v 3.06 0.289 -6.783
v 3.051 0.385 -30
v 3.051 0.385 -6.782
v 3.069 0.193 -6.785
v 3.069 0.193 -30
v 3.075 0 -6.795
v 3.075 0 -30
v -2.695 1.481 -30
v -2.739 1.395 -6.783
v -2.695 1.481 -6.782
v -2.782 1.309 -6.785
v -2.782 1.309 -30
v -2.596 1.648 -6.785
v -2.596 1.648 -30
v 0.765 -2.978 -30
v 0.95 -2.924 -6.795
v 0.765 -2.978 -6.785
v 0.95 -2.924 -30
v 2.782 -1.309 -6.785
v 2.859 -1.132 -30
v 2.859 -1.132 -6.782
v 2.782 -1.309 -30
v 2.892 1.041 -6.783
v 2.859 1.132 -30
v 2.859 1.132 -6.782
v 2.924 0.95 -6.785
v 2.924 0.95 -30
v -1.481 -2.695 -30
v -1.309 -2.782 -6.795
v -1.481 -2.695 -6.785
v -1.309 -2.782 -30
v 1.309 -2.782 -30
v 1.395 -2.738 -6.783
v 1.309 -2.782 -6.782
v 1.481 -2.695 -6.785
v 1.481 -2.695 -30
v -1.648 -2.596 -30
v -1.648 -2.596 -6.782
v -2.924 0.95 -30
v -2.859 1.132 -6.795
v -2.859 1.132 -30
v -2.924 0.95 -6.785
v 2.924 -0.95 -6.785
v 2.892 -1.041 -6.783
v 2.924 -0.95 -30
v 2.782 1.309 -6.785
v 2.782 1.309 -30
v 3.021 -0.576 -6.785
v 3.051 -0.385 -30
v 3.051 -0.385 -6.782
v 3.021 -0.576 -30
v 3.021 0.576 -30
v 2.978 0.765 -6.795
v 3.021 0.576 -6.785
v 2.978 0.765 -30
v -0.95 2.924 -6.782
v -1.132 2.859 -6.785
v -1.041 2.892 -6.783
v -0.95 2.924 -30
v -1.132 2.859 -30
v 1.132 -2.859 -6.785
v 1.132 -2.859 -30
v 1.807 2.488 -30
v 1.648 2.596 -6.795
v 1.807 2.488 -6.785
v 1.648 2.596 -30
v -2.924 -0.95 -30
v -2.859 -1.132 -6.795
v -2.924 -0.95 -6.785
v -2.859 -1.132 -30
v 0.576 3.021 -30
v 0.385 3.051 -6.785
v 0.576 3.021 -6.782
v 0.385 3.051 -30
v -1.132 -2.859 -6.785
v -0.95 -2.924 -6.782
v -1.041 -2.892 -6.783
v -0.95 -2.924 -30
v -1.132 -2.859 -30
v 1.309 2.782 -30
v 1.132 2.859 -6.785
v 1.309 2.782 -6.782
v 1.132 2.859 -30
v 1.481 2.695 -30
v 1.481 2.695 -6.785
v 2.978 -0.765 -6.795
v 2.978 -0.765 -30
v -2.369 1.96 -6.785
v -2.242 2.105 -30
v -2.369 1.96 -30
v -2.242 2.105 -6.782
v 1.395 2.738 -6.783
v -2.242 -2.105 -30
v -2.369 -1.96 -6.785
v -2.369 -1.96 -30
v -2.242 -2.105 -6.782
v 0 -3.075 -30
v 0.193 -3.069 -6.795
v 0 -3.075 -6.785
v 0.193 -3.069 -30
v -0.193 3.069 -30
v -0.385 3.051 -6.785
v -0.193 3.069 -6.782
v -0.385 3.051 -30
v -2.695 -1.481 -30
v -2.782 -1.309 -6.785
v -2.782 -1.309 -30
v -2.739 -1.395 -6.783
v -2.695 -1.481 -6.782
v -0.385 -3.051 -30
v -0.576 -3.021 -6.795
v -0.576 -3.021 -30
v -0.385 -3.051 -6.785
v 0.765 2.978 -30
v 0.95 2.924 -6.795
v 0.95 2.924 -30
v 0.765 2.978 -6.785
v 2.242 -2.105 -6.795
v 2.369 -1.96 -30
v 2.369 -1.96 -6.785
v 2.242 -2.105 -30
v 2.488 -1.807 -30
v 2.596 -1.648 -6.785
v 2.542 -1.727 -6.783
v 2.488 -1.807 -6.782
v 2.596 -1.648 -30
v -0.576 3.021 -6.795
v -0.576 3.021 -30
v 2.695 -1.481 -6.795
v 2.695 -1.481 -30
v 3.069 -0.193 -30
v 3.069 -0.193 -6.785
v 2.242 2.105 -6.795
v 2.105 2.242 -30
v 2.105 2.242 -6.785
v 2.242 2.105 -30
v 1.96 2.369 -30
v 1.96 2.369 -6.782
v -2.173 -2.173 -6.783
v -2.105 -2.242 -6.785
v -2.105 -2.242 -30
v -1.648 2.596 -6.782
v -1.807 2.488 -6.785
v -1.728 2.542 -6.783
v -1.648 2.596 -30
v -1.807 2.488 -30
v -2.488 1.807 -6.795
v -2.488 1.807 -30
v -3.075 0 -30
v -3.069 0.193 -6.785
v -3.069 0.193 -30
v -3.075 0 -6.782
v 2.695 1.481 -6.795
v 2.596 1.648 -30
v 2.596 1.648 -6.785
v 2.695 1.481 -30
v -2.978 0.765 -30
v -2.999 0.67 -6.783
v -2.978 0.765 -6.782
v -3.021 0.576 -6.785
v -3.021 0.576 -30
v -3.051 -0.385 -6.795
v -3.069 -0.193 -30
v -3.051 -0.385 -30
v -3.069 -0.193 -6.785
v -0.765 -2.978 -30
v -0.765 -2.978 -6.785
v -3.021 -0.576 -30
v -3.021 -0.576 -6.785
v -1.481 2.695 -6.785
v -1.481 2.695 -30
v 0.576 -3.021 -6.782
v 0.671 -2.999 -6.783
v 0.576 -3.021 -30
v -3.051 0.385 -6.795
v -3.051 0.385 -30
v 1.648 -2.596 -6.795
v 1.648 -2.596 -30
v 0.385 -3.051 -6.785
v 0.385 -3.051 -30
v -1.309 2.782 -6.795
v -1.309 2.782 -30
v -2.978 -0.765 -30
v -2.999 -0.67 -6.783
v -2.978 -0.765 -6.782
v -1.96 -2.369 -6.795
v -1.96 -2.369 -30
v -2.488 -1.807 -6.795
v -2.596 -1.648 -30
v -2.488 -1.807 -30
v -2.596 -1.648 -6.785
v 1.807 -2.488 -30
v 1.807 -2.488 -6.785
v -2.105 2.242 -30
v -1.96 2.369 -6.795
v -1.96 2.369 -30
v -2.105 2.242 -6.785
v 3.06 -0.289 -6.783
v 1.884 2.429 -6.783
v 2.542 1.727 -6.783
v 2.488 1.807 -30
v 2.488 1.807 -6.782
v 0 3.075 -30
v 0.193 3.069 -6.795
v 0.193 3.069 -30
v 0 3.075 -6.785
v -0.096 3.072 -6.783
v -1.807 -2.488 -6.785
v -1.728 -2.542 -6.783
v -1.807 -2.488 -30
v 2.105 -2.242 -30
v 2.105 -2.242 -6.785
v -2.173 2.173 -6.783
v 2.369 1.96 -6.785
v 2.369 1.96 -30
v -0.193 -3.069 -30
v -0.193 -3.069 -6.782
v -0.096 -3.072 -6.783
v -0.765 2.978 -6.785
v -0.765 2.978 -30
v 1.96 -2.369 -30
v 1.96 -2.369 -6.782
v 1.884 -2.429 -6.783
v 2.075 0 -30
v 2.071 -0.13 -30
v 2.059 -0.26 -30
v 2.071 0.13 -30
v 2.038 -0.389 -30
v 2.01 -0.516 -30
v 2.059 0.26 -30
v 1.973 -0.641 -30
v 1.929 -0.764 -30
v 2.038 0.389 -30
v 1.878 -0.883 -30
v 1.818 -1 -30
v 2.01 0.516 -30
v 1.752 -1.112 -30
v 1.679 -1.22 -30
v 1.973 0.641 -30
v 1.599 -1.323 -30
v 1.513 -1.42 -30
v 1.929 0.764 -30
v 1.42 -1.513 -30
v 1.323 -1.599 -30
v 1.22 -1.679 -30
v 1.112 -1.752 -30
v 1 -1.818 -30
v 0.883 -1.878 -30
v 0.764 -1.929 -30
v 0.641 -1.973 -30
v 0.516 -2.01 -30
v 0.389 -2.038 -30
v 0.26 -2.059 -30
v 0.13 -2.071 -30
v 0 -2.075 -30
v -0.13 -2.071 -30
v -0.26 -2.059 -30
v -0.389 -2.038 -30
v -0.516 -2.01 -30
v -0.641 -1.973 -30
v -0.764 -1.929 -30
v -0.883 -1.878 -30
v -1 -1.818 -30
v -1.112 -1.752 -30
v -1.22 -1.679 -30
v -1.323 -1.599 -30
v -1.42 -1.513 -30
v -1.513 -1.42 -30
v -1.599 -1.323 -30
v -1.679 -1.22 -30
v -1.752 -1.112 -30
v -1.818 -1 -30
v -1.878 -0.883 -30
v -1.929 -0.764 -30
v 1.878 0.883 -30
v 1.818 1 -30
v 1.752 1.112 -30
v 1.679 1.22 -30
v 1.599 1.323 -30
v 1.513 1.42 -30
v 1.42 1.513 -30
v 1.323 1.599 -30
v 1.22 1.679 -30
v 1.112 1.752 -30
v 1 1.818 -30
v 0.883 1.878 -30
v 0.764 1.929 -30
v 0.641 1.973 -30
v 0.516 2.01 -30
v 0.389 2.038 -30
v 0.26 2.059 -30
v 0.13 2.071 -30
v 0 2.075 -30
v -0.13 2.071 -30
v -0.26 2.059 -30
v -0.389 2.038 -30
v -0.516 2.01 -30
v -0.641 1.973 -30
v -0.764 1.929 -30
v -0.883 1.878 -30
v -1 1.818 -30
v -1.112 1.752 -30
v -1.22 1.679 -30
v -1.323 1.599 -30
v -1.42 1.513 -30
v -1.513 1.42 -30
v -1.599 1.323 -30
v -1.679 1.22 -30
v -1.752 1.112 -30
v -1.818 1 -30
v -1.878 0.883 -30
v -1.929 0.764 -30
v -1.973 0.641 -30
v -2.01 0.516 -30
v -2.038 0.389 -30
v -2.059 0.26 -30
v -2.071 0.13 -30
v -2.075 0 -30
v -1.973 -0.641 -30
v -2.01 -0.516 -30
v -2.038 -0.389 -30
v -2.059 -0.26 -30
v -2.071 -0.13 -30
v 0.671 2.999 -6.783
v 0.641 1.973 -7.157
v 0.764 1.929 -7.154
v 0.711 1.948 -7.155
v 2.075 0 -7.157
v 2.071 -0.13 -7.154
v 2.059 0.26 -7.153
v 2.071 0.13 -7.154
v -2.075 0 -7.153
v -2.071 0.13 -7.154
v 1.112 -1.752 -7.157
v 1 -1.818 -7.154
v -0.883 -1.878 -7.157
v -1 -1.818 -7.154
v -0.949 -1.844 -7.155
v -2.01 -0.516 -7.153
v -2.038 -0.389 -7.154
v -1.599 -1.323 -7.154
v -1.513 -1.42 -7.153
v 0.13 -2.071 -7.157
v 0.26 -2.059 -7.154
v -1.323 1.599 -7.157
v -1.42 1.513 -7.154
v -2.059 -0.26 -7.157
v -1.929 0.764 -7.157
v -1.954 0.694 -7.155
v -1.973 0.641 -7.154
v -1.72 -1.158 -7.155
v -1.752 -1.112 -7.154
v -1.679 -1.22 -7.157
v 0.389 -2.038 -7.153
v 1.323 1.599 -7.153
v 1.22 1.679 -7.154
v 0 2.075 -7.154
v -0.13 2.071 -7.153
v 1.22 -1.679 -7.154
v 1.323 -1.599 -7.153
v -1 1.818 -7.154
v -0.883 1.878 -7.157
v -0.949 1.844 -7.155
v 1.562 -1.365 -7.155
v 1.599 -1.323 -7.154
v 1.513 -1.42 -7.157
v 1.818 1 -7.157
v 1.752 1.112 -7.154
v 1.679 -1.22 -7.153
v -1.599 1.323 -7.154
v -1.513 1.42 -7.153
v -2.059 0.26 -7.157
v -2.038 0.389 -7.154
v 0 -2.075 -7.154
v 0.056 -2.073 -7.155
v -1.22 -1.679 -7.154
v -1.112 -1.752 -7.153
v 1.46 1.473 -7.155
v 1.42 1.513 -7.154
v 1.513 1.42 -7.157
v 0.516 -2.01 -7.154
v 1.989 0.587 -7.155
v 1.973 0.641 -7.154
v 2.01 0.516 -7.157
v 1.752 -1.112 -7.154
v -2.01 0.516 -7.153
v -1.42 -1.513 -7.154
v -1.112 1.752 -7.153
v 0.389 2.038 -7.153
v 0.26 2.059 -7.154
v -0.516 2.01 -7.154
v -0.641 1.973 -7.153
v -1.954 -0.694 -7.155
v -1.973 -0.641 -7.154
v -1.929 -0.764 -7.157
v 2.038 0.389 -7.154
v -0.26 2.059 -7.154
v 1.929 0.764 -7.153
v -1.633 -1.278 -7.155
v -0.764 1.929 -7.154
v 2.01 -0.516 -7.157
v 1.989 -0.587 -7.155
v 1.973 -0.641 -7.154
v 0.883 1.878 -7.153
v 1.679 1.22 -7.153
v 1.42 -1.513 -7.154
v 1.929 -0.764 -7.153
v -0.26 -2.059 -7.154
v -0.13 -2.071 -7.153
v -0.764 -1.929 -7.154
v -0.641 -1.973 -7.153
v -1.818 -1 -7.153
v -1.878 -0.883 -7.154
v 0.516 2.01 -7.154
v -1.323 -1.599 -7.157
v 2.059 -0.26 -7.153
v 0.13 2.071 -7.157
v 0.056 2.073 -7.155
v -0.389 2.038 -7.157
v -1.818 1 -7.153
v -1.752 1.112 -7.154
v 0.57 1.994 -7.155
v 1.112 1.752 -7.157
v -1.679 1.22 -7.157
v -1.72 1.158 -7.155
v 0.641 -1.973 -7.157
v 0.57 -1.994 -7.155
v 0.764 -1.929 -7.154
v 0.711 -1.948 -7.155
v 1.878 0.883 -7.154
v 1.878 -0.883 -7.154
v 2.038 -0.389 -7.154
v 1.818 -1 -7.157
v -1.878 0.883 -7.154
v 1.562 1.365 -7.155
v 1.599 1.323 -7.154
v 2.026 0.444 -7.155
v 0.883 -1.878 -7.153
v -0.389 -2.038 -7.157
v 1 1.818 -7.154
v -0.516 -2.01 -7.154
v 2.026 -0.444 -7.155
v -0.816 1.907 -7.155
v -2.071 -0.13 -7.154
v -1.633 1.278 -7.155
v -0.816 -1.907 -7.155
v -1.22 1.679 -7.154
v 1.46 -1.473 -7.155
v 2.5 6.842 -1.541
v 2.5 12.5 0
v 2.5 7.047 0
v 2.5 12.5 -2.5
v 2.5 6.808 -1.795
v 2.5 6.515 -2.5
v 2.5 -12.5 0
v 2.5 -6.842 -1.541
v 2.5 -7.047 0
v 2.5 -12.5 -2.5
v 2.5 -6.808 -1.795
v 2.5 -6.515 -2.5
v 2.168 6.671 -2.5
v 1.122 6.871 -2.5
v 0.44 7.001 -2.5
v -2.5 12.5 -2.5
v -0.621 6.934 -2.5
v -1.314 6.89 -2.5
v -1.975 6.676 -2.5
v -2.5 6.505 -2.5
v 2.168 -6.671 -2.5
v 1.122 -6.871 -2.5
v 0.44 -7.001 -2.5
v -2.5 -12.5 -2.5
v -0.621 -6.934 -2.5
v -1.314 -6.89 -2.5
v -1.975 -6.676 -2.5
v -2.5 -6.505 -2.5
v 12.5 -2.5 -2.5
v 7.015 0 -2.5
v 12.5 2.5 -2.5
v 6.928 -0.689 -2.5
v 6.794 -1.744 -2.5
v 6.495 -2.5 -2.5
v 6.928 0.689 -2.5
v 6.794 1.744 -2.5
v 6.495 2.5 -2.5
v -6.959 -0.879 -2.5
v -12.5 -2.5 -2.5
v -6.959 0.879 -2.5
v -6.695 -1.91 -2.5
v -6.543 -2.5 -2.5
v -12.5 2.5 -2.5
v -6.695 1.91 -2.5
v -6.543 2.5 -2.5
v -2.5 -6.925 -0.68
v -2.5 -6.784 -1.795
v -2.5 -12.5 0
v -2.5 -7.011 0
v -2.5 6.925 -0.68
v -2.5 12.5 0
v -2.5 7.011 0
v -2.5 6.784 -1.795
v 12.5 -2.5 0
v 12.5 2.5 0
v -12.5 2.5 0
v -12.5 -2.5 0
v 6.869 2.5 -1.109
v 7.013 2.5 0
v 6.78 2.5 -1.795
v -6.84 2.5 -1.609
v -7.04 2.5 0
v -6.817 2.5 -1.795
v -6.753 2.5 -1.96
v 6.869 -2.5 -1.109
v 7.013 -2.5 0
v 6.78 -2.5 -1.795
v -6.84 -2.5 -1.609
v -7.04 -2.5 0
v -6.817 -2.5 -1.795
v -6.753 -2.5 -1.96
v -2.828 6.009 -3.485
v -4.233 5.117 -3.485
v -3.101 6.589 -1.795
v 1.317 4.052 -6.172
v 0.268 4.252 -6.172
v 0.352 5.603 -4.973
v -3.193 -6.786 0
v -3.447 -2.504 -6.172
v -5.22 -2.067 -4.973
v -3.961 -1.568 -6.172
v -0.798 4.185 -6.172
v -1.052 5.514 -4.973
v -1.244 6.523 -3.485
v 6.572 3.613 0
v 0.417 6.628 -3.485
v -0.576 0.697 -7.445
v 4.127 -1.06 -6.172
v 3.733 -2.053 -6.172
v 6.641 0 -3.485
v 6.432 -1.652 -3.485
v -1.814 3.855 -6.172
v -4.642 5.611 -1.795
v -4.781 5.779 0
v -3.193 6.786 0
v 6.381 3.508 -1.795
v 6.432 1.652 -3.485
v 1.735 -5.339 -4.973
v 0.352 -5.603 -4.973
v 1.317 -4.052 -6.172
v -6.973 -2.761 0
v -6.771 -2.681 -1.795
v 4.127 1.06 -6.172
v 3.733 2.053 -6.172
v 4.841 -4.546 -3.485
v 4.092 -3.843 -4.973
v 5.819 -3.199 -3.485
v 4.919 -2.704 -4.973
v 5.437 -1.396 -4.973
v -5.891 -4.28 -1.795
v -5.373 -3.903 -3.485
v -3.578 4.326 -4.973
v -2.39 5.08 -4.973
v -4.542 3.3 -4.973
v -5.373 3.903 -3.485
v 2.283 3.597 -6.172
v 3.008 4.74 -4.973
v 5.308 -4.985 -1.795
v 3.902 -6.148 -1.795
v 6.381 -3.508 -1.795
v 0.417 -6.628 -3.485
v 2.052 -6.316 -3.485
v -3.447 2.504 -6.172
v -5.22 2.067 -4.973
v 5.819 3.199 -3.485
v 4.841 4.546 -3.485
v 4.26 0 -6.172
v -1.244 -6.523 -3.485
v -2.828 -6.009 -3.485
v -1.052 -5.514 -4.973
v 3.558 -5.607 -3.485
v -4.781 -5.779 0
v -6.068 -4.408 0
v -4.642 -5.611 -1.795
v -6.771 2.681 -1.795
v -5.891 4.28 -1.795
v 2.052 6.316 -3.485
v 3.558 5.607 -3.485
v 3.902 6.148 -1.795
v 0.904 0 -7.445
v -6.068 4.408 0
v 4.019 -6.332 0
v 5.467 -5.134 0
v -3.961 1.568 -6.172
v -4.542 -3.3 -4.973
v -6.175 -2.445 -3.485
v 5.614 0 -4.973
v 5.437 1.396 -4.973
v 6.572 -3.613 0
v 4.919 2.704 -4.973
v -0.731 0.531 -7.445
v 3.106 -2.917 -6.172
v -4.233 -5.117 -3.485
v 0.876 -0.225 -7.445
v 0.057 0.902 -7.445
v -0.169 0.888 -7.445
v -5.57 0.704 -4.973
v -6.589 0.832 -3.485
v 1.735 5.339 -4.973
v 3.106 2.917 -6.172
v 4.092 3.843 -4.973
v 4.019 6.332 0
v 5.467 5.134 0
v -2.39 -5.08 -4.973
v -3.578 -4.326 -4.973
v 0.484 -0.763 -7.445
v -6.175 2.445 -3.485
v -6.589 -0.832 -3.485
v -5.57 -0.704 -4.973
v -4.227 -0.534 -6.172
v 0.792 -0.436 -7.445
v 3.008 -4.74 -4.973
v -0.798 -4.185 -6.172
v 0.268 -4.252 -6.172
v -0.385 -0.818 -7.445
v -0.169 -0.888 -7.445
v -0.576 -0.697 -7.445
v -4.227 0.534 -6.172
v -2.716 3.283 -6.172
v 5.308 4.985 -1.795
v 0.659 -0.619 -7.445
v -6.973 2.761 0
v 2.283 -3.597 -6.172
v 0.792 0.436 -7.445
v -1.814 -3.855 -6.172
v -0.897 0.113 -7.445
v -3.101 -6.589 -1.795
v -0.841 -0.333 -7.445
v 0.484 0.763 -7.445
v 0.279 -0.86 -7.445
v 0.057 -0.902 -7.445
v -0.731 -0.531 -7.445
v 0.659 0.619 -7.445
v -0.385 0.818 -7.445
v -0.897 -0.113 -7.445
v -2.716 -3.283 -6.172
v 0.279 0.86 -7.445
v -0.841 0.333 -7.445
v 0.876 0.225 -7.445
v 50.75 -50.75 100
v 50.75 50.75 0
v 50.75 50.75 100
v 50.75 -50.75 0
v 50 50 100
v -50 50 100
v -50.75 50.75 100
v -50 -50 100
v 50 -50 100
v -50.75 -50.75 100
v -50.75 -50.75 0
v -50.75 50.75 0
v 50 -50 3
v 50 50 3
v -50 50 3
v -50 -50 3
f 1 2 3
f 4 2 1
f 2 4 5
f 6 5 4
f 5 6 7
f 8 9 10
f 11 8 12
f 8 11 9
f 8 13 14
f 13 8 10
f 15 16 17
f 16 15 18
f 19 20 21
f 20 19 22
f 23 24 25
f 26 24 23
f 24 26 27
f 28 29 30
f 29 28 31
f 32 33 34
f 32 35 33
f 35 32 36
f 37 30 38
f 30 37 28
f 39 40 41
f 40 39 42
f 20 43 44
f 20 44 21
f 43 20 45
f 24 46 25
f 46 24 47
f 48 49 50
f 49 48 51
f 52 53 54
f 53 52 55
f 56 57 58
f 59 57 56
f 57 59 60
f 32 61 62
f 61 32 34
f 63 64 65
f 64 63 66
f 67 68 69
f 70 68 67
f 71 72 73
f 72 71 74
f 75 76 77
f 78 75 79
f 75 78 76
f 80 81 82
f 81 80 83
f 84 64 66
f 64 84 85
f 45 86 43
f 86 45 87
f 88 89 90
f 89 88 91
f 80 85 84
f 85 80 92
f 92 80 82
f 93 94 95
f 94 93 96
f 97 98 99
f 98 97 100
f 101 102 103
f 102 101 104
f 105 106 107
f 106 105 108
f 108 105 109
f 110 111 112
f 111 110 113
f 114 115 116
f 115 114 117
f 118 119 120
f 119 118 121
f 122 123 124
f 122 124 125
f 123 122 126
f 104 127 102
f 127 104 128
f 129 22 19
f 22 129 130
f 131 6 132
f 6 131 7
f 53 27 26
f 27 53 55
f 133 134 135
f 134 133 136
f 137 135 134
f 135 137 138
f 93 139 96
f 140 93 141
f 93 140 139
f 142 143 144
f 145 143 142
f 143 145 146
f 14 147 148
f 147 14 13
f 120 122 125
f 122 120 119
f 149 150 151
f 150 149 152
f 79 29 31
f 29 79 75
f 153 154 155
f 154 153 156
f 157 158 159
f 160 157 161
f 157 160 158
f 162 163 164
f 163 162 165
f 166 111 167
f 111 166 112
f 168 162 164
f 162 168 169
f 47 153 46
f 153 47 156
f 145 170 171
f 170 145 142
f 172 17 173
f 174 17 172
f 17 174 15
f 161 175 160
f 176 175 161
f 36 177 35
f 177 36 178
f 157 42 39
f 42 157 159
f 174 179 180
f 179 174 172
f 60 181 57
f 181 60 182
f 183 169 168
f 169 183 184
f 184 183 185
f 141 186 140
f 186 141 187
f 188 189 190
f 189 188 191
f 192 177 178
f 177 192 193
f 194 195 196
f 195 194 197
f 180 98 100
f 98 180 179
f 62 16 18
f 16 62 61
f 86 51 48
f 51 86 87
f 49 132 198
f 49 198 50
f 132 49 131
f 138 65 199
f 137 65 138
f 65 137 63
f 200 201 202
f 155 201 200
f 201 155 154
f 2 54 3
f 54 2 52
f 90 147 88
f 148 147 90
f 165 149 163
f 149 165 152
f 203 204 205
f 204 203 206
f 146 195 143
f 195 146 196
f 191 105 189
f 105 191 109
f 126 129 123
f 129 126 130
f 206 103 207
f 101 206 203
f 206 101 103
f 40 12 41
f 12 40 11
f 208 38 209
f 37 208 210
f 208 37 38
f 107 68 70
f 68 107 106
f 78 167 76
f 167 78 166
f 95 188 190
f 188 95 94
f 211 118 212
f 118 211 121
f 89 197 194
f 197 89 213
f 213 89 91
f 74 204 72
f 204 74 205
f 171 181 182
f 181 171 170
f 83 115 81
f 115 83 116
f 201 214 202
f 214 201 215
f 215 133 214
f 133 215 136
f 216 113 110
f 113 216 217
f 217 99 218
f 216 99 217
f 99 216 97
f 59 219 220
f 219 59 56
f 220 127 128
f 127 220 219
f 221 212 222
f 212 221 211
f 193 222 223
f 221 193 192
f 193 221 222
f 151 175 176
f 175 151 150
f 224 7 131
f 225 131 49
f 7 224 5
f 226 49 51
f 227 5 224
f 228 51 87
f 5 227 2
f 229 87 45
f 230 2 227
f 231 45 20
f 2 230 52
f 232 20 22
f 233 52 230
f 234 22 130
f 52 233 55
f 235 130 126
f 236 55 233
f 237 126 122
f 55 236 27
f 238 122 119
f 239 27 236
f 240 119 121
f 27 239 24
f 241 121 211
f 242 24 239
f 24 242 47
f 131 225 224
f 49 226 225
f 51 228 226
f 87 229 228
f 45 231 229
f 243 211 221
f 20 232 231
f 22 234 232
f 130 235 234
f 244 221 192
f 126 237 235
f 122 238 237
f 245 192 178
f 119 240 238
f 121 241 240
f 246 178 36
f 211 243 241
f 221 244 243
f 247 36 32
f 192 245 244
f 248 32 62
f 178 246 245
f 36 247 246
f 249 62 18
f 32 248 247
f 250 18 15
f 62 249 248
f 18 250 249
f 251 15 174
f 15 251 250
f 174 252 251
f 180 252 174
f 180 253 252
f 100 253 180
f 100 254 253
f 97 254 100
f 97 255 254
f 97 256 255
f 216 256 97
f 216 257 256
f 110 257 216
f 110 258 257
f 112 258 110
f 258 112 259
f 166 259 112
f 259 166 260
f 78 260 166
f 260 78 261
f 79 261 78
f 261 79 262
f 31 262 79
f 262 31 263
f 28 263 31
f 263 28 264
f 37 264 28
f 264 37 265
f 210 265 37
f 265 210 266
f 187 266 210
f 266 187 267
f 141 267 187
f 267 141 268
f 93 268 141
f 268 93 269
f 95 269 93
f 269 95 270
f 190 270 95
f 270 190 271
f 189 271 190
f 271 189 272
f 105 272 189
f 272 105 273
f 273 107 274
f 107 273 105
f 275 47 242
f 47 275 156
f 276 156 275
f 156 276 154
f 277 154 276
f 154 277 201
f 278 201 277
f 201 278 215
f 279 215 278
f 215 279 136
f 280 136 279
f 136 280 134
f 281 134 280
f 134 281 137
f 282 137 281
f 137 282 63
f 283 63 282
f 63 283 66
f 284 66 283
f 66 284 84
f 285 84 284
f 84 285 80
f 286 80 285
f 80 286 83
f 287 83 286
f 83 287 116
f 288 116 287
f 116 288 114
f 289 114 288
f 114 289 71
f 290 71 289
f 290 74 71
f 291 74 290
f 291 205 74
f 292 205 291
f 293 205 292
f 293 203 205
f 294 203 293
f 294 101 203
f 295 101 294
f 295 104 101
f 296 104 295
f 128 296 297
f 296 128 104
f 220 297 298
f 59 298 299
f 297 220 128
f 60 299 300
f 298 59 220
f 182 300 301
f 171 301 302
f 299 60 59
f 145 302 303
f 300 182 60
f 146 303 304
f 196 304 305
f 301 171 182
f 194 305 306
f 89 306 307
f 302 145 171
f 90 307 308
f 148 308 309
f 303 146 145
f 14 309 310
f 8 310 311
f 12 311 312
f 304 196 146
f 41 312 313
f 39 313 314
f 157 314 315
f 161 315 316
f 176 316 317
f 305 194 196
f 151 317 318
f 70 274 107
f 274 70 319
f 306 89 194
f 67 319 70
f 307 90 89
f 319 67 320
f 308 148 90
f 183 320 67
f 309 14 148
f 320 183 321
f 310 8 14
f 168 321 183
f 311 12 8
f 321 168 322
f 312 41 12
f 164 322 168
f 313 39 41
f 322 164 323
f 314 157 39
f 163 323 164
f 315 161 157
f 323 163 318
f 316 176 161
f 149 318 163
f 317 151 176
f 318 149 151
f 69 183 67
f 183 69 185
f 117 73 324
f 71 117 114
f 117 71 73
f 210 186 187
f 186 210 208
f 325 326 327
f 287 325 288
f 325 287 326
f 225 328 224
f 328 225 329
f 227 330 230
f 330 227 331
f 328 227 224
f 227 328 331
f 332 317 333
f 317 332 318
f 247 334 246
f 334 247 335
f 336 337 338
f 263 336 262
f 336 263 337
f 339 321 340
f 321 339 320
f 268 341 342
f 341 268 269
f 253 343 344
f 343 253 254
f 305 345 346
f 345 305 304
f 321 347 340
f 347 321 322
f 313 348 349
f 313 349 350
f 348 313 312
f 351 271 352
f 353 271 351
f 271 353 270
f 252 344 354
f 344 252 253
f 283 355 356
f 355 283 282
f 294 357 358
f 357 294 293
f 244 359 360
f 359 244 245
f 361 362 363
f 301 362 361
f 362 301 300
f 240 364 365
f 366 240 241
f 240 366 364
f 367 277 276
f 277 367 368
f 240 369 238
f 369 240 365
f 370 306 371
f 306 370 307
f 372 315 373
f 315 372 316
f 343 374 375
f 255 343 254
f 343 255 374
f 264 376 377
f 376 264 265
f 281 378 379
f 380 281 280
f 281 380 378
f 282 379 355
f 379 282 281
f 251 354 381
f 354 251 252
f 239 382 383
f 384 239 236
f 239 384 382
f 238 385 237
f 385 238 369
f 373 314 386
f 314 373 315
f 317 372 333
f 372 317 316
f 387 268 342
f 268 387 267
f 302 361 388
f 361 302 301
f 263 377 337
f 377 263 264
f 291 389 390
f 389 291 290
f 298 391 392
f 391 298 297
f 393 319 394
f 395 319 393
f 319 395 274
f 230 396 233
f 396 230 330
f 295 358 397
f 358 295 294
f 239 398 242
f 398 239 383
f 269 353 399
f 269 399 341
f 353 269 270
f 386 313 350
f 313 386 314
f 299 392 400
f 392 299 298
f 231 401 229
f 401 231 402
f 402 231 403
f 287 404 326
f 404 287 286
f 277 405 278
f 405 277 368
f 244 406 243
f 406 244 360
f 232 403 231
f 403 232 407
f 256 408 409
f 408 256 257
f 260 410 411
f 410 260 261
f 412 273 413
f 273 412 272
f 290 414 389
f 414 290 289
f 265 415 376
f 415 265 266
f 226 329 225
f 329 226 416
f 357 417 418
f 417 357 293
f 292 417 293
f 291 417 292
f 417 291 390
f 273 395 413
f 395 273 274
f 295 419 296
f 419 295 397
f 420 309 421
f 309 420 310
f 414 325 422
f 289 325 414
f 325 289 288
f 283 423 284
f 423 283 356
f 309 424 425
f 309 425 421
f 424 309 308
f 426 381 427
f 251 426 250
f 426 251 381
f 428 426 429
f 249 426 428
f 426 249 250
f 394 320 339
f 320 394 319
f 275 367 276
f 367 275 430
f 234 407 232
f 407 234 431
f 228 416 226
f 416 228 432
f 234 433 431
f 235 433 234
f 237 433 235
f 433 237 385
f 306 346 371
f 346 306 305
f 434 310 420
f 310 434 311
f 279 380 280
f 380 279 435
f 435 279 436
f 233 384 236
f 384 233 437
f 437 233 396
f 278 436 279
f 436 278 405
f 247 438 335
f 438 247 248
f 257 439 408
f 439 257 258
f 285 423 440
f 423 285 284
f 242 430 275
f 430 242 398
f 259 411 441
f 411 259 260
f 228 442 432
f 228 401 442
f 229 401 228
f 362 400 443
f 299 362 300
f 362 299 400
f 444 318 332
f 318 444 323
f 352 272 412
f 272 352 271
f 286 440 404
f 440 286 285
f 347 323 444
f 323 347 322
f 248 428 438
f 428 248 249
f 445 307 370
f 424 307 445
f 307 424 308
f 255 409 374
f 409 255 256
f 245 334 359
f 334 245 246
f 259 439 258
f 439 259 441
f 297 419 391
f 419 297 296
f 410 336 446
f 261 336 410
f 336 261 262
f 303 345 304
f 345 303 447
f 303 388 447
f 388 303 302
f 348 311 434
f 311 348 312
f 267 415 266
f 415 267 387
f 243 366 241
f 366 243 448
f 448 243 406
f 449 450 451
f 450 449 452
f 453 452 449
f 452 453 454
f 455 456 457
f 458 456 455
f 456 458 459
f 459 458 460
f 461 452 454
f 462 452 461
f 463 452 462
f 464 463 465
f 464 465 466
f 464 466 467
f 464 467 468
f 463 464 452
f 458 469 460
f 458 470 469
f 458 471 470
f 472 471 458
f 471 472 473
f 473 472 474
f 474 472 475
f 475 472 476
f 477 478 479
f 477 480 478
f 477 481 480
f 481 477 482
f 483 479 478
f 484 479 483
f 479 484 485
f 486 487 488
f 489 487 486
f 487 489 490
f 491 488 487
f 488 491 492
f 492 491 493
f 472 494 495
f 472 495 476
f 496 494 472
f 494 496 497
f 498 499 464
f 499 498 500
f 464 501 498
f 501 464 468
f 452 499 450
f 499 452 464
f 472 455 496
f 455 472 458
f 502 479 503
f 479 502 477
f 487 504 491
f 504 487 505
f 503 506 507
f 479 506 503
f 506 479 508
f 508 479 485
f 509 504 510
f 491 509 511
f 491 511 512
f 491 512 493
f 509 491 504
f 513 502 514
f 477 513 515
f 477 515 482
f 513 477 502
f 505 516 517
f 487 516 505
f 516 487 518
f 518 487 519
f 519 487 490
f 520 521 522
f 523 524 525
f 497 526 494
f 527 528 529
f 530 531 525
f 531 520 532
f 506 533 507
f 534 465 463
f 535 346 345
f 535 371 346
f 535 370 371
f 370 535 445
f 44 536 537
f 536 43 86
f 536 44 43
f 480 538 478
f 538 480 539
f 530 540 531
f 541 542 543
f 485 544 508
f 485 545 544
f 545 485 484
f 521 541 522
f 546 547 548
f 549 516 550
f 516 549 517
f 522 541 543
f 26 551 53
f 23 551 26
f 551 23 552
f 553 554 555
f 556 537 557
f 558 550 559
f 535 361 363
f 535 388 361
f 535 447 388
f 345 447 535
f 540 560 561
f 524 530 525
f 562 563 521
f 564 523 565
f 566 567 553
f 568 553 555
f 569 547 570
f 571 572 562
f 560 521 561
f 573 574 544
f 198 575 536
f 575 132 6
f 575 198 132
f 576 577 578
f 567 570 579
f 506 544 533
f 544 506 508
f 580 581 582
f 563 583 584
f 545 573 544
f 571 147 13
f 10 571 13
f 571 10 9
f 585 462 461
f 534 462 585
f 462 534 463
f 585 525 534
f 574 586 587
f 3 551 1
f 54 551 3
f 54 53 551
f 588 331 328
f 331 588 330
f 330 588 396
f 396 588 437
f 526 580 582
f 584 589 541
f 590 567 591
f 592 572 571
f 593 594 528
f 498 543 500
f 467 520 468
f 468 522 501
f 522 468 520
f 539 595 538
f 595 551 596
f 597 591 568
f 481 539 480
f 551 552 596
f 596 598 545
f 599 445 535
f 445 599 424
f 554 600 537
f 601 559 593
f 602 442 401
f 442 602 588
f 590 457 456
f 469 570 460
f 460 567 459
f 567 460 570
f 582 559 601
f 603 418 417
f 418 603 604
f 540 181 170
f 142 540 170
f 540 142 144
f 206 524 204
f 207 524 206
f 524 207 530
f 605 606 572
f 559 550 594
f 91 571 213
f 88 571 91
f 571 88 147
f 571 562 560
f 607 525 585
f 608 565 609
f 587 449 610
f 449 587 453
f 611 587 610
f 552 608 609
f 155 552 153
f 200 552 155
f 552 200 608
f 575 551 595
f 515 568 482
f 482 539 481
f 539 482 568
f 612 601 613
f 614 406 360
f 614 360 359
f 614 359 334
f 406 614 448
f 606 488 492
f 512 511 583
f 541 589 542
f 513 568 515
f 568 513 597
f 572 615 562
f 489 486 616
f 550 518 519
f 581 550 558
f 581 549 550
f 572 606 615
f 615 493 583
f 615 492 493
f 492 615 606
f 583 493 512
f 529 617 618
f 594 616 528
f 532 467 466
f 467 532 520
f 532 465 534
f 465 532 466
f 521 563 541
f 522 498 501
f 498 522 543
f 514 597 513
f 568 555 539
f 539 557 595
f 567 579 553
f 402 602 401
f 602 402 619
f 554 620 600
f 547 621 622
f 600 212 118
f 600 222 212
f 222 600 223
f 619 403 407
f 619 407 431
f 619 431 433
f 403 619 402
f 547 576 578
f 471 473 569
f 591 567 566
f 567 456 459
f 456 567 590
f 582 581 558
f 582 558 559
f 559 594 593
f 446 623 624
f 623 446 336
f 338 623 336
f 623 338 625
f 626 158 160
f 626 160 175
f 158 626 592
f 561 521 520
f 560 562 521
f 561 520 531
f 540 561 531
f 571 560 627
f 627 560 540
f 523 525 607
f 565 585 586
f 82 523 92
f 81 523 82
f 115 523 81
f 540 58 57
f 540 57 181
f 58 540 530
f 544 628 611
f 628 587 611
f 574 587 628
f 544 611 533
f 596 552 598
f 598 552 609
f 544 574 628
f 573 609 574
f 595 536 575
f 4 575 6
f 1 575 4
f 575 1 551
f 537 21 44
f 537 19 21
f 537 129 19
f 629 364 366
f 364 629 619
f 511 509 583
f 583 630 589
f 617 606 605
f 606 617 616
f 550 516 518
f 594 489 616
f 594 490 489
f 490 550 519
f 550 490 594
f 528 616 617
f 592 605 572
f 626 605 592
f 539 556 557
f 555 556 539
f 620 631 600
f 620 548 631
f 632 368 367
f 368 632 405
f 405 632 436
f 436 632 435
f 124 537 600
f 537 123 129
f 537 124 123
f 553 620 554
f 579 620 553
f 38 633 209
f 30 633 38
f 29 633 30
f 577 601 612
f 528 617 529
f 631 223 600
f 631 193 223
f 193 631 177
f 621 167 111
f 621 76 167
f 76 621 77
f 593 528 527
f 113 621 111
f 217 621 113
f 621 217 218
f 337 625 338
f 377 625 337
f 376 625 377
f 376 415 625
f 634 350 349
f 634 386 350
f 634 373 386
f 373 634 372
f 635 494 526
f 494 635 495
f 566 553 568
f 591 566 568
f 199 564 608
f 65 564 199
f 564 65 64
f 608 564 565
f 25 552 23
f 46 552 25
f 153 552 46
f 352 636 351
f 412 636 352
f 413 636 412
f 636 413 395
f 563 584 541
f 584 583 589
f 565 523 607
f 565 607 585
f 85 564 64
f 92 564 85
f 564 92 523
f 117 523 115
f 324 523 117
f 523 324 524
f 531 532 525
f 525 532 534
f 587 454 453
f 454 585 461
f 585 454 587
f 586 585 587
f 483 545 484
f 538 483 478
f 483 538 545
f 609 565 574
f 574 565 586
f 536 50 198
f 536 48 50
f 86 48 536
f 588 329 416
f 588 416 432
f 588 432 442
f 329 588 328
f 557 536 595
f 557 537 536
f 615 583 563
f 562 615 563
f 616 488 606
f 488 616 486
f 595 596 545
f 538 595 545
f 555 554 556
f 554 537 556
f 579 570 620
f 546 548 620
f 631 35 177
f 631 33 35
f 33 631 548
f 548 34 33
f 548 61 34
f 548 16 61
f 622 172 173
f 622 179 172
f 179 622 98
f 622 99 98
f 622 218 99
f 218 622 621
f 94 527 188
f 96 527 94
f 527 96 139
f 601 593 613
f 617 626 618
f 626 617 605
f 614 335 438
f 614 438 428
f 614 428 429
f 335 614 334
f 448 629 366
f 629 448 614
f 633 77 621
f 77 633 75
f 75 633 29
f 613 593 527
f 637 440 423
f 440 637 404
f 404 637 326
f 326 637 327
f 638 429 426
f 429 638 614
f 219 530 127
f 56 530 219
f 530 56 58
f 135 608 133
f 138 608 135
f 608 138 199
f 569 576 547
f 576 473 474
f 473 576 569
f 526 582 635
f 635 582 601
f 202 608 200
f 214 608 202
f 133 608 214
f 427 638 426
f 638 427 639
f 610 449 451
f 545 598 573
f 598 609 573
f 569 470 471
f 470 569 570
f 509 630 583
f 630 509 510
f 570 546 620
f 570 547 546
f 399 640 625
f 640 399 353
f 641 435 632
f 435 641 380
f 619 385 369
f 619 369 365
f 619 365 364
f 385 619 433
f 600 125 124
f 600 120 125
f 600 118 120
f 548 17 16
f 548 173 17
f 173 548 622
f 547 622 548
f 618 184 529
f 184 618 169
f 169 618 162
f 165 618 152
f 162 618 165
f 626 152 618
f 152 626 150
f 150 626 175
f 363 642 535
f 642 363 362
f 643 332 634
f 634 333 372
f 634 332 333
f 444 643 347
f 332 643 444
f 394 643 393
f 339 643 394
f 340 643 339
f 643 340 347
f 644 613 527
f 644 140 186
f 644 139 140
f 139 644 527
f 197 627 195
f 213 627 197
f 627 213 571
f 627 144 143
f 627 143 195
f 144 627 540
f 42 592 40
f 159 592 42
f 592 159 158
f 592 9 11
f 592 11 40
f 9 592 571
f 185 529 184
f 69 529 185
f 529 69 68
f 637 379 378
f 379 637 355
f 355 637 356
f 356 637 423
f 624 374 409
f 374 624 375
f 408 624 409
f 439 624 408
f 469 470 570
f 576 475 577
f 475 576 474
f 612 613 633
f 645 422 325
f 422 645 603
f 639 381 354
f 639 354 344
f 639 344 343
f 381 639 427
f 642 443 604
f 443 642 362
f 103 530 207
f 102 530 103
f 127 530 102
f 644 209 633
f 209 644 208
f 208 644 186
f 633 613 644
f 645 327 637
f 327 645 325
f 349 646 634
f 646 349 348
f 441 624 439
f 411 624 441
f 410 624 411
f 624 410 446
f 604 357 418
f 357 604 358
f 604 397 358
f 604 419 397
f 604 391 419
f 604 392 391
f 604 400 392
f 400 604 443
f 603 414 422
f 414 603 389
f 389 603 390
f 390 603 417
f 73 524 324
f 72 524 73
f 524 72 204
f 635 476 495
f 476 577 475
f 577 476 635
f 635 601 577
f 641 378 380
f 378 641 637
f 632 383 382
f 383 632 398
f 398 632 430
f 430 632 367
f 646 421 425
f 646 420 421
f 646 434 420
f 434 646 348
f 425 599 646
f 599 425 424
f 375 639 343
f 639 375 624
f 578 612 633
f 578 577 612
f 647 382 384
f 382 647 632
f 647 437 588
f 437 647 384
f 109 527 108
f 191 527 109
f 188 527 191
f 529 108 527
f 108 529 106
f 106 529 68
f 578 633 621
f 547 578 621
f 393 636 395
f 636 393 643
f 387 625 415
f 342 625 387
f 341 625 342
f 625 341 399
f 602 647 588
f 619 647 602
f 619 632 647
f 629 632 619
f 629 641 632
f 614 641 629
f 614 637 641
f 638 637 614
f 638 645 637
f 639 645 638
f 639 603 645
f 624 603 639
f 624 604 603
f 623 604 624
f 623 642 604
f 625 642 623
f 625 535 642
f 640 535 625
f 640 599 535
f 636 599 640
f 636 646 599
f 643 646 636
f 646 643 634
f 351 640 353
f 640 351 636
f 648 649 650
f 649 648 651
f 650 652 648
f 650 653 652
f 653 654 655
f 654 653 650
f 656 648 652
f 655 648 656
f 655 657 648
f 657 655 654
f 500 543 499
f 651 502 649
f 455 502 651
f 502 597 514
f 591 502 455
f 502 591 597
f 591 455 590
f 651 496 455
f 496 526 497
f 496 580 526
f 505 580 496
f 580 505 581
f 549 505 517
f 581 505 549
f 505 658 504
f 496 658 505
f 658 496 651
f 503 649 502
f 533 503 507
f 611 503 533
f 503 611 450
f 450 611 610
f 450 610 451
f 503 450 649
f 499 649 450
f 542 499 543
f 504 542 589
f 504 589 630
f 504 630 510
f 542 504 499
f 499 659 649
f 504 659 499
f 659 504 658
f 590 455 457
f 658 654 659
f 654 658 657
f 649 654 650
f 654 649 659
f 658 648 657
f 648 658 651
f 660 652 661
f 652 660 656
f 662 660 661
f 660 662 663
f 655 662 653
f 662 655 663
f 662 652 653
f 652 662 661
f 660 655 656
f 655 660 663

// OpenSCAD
// file: bottom_pin.scad
// This is the bottom pin which is used to mount the sample holders into the machines.
// Since we use this for most of our models, it makes sense to have a small 'template' which we can just add the model where it's needed...
// To do so, add a line with "use<bottom_pin.scad>"
// And then just call "pin();" wherever you need the pin :)
$fn=100;
module pin(diameter=6.15, height=20, cap_depth=2)
{
    translate([0,0,-height]) difference(){
        cylinder(d=diameter,h=height);
        cylinder(d=diameter-2,h=height-cap_depth);
    }
}
pin();
// main file
$fn = 25;

use <bottom_pin.scad>

wall_thickness=3;
box_width=100;
box_height=100;

pin(height=30);
translate([0, 0, box_height/2]) {
    difference(){
        union(){
            translate([0, 0, -box_height/2]) cube([5, 25, 5], center=true);
            translate([0, 0, -box_height/2]) cube([25, 5, 5], center=true);
            translate([0, 0, -box_height/2]) sphere(7.5);
            cube([box_width + wall_thickness/2, box_width+wall_thickness/2, box_height], center=true);
        }
    translate([0,0,wall_thickness]) #cube([box_width, box_width, box_height], center=true);
    }
}
